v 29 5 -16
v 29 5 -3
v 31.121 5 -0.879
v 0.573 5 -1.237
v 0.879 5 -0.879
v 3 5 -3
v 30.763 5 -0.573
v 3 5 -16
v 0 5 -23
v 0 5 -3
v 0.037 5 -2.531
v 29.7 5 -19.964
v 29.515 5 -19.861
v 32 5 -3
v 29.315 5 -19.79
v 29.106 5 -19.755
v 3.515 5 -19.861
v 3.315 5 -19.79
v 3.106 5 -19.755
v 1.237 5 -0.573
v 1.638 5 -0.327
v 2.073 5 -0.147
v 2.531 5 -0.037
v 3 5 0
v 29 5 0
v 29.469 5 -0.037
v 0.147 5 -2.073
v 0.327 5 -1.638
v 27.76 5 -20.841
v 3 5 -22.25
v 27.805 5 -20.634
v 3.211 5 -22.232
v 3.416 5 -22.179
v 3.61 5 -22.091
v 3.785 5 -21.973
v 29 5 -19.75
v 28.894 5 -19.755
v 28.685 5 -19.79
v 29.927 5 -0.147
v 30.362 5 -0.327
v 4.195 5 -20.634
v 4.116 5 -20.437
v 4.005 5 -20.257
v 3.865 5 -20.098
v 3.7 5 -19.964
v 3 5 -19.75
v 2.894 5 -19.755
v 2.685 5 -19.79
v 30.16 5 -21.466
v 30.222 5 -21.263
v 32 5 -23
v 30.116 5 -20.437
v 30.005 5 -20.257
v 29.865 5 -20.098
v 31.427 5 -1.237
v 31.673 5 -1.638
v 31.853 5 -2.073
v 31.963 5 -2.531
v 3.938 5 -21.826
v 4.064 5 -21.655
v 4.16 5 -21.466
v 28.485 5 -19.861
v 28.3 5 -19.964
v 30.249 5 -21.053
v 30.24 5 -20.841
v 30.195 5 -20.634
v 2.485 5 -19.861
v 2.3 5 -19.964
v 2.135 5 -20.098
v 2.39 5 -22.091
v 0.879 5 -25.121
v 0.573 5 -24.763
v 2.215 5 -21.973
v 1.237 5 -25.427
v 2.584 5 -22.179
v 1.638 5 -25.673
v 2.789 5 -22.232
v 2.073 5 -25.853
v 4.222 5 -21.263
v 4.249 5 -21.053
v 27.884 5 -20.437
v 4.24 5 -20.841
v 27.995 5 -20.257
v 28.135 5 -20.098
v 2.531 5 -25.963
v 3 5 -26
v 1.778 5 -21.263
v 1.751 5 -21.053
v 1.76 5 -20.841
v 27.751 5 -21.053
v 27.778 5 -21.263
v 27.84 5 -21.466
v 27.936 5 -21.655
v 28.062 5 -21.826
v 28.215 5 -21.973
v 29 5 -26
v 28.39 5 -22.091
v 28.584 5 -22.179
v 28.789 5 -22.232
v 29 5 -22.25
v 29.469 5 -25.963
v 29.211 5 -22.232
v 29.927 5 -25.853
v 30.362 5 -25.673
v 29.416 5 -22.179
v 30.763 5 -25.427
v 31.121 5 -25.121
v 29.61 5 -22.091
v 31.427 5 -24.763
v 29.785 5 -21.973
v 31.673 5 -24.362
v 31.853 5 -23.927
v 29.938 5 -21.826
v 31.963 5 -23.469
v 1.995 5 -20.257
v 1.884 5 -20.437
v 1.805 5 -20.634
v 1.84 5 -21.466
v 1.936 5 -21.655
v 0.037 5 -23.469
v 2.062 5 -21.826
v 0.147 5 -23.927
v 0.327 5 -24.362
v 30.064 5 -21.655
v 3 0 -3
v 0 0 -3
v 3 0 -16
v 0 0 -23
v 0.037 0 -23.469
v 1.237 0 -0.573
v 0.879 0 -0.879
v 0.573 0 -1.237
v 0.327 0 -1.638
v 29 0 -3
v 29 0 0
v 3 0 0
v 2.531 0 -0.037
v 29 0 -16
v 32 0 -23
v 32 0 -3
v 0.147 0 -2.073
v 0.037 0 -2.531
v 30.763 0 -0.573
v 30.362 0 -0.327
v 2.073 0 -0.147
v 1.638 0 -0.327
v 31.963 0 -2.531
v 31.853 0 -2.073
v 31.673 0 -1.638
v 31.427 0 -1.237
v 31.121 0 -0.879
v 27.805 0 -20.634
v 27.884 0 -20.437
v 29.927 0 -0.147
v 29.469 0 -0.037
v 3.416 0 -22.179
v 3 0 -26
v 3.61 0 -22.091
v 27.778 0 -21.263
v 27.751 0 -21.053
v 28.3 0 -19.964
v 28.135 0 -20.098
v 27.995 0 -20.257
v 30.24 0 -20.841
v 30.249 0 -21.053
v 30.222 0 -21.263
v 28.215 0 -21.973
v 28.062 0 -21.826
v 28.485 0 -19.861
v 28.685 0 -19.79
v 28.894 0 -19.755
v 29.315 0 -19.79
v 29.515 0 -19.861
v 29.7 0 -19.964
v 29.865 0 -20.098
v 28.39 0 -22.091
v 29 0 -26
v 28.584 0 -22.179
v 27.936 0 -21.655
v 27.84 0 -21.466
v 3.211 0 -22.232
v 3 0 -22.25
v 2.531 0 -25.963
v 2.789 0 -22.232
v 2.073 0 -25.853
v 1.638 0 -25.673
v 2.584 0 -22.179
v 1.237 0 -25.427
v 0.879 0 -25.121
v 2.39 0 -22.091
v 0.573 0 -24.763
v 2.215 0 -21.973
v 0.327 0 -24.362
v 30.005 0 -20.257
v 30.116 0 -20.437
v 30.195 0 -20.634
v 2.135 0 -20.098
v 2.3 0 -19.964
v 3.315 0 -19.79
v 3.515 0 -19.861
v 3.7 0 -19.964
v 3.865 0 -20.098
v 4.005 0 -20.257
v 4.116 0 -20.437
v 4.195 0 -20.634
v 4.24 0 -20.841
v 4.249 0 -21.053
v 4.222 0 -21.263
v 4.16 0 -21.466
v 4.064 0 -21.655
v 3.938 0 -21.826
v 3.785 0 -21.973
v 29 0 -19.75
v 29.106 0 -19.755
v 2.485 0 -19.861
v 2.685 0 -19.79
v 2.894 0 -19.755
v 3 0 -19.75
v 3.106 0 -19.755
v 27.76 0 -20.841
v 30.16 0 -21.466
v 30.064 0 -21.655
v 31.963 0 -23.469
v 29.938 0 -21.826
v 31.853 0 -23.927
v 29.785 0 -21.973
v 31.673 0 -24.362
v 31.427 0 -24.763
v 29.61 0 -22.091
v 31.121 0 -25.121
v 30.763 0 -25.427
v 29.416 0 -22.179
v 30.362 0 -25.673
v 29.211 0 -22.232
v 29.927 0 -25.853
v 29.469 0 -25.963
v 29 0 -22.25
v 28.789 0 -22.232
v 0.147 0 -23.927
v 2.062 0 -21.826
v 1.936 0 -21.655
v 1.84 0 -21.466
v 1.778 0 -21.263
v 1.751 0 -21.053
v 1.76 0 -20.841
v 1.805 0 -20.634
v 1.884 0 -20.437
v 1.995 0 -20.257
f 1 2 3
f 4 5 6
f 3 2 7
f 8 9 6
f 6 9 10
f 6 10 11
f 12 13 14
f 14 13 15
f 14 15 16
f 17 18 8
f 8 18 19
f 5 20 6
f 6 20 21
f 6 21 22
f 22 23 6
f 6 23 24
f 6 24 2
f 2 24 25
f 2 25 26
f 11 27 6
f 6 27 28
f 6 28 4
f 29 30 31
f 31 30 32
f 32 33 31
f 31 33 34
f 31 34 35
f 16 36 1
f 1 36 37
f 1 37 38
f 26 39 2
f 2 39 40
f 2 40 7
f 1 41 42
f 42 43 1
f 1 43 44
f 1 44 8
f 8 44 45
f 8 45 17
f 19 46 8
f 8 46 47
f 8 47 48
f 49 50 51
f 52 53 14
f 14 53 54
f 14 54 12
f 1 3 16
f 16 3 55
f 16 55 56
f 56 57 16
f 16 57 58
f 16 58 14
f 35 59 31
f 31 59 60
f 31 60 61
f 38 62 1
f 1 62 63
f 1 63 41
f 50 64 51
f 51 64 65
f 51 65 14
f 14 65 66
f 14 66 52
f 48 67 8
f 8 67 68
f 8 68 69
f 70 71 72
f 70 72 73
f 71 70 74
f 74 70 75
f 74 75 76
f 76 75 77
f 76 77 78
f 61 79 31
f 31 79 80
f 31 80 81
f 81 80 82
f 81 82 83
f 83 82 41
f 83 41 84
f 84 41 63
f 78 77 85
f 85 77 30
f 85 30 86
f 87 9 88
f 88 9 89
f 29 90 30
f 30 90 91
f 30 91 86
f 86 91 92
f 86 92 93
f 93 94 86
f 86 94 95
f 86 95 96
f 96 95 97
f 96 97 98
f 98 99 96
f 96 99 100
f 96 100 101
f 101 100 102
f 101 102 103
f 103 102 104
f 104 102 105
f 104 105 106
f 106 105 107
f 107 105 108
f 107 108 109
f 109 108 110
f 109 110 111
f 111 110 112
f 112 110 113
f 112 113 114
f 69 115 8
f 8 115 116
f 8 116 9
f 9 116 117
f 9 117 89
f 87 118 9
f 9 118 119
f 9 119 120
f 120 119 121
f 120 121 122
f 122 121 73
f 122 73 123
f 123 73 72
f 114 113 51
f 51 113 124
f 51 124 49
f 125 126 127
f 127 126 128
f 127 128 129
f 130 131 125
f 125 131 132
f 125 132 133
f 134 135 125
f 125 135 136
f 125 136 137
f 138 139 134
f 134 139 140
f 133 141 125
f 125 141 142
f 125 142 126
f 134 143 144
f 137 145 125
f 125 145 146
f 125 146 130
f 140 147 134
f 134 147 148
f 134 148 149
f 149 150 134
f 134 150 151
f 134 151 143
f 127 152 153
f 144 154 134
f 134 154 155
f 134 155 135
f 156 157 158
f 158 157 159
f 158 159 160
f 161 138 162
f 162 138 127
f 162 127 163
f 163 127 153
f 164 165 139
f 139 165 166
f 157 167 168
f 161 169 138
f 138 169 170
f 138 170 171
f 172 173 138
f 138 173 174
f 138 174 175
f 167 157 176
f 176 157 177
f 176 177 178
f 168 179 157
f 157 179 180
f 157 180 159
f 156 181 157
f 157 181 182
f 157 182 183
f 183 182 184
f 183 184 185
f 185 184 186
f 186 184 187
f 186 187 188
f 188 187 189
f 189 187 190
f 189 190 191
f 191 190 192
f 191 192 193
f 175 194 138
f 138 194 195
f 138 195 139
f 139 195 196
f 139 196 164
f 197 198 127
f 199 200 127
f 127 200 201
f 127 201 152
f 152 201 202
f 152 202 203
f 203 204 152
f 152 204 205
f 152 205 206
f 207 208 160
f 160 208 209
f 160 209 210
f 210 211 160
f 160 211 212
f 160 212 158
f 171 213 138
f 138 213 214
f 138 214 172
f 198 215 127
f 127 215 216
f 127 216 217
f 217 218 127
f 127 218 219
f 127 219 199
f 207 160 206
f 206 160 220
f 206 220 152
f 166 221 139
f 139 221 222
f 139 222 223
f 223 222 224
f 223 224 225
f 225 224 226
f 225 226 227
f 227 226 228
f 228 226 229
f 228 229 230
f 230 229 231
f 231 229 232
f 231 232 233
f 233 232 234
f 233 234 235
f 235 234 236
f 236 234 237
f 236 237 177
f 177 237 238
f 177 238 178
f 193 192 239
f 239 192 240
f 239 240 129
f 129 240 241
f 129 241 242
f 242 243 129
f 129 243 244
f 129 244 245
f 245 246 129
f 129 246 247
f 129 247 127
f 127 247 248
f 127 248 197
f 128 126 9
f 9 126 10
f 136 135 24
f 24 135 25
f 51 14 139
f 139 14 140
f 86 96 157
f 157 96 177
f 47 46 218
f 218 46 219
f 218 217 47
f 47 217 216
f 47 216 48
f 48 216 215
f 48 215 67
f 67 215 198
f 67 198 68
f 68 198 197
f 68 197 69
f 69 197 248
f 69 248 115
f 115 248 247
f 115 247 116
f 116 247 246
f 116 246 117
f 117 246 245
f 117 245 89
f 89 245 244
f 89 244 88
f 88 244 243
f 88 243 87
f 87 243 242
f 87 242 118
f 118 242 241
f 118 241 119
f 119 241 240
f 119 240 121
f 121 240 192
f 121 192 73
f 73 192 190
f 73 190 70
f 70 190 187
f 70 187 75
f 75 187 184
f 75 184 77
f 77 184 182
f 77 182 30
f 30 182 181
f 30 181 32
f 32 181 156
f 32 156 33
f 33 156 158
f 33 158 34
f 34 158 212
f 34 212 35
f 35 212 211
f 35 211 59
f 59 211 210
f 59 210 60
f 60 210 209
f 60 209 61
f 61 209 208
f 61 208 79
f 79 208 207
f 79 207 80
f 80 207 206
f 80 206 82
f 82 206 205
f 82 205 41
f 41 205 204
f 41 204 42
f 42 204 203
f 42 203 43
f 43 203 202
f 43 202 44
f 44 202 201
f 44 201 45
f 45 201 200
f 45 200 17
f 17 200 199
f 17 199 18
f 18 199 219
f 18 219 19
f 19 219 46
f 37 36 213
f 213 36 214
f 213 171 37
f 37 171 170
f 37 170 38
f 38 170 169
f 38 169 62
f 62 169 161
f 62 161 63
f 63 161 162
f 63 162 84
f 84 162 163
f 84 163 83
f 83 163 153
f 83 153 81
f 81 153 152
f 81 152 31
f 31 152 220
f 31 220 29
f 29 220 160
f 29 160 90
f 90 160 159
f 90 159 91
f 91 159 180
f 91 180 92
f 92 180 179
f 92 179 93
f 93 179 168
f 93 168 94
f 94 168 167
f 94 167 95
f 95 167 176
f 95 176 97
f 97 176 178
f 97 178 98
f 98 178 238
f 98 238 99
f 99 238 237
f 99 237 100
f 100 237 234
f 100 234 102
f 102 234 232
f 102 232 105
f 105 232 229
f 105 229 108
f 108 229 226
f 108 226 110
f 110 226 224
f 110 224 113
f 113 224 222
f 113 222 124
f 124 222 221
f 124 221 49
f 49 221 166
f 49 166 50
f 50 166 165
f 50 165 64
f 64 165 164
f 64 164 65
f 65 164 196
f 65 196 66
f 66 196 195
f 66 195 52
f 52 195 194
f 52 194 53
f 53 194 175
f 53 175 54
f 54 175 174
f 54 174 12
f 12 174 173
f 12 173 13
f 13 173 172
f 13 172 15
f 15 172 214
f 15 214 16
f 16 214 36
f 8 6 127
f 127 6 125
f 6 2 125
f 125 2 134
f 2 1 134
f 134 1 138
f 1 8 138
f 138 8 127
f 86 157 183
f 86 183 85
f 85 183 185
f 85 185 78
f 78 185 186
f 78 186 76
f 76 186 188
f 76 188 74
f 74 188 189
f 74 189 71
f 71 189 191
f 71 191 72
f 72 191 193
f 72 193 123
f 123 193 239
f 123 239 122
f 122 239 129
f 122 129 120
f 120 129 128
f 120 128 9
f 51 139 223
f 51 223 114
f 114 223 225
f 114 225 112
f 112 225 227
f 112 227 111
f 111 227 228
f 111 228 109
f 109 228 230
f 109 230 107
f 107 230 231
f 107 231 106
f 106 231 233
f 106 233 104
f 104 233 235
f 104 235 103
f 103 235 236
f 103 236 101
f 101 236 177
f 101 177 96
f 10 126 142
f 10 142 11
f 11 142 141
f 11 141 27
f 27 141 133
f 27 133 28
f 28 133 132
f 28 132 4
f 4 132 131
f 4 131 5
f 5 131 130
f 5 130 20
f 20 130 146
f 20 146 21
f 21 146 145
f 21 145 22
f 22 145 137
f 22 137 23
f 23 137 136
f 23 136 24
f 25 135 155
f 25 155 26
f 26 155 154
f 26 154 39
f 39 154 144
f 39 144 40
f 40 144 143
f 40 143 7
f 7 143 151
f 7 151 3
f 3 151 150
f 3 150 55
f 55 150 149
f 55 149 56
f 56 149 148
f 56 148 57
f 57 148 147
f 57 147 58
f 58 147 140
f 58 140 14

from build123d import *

# Parameters (mm, degrees)
SKETCH1_W           = 32
SKETCH1_H           = 26
SKETCH1_R           = 1.25
SKETCH1_W_2         = 26
SKETCH1_H_2         = 13
BOSS_EXTRUDE1_DEPTH = 5
FILLET1_R           = 3


with BuildPart() as part:
    # Sketch1 → Boss-Extrude1 (new body)
    with BuildSketch(Plane(origin=(0, 0, 0), x_dir=(1, 0, 0), z_dir=(0, 1, 0))):
        with Locations((16, 13)):
            Rectangle(SKETCH1_W, SKETCH1_H)
        with Locations((3, 21)):
            Circle(SKETCH1_R, mode=Mode.SUBTRACT)
        with Locations((29, 21)):
            Circle(SKETCH1_R, mode=Mode.SUBTRACT)
        with Locations((16, 9.5)):
            Rectangle(SKETCH1_W_2, SKETCH1_H_2, mode=Mode.SUBTRACT)
    extrude(amount=BOSS_EXTRUDE1_DEPTH)

    # Fillet1
    fillet1_edges = [part.edges().sort_by_distance(p)[0] for p in [
        (0, 2.5, -26),
        (32, 2.5, -26),
        (32, 2.5, 0),
        (0, 2.5, 0),
    ]]
    fillet(fillet1_edges, radius=FILLET1_R)


solid = part.part
